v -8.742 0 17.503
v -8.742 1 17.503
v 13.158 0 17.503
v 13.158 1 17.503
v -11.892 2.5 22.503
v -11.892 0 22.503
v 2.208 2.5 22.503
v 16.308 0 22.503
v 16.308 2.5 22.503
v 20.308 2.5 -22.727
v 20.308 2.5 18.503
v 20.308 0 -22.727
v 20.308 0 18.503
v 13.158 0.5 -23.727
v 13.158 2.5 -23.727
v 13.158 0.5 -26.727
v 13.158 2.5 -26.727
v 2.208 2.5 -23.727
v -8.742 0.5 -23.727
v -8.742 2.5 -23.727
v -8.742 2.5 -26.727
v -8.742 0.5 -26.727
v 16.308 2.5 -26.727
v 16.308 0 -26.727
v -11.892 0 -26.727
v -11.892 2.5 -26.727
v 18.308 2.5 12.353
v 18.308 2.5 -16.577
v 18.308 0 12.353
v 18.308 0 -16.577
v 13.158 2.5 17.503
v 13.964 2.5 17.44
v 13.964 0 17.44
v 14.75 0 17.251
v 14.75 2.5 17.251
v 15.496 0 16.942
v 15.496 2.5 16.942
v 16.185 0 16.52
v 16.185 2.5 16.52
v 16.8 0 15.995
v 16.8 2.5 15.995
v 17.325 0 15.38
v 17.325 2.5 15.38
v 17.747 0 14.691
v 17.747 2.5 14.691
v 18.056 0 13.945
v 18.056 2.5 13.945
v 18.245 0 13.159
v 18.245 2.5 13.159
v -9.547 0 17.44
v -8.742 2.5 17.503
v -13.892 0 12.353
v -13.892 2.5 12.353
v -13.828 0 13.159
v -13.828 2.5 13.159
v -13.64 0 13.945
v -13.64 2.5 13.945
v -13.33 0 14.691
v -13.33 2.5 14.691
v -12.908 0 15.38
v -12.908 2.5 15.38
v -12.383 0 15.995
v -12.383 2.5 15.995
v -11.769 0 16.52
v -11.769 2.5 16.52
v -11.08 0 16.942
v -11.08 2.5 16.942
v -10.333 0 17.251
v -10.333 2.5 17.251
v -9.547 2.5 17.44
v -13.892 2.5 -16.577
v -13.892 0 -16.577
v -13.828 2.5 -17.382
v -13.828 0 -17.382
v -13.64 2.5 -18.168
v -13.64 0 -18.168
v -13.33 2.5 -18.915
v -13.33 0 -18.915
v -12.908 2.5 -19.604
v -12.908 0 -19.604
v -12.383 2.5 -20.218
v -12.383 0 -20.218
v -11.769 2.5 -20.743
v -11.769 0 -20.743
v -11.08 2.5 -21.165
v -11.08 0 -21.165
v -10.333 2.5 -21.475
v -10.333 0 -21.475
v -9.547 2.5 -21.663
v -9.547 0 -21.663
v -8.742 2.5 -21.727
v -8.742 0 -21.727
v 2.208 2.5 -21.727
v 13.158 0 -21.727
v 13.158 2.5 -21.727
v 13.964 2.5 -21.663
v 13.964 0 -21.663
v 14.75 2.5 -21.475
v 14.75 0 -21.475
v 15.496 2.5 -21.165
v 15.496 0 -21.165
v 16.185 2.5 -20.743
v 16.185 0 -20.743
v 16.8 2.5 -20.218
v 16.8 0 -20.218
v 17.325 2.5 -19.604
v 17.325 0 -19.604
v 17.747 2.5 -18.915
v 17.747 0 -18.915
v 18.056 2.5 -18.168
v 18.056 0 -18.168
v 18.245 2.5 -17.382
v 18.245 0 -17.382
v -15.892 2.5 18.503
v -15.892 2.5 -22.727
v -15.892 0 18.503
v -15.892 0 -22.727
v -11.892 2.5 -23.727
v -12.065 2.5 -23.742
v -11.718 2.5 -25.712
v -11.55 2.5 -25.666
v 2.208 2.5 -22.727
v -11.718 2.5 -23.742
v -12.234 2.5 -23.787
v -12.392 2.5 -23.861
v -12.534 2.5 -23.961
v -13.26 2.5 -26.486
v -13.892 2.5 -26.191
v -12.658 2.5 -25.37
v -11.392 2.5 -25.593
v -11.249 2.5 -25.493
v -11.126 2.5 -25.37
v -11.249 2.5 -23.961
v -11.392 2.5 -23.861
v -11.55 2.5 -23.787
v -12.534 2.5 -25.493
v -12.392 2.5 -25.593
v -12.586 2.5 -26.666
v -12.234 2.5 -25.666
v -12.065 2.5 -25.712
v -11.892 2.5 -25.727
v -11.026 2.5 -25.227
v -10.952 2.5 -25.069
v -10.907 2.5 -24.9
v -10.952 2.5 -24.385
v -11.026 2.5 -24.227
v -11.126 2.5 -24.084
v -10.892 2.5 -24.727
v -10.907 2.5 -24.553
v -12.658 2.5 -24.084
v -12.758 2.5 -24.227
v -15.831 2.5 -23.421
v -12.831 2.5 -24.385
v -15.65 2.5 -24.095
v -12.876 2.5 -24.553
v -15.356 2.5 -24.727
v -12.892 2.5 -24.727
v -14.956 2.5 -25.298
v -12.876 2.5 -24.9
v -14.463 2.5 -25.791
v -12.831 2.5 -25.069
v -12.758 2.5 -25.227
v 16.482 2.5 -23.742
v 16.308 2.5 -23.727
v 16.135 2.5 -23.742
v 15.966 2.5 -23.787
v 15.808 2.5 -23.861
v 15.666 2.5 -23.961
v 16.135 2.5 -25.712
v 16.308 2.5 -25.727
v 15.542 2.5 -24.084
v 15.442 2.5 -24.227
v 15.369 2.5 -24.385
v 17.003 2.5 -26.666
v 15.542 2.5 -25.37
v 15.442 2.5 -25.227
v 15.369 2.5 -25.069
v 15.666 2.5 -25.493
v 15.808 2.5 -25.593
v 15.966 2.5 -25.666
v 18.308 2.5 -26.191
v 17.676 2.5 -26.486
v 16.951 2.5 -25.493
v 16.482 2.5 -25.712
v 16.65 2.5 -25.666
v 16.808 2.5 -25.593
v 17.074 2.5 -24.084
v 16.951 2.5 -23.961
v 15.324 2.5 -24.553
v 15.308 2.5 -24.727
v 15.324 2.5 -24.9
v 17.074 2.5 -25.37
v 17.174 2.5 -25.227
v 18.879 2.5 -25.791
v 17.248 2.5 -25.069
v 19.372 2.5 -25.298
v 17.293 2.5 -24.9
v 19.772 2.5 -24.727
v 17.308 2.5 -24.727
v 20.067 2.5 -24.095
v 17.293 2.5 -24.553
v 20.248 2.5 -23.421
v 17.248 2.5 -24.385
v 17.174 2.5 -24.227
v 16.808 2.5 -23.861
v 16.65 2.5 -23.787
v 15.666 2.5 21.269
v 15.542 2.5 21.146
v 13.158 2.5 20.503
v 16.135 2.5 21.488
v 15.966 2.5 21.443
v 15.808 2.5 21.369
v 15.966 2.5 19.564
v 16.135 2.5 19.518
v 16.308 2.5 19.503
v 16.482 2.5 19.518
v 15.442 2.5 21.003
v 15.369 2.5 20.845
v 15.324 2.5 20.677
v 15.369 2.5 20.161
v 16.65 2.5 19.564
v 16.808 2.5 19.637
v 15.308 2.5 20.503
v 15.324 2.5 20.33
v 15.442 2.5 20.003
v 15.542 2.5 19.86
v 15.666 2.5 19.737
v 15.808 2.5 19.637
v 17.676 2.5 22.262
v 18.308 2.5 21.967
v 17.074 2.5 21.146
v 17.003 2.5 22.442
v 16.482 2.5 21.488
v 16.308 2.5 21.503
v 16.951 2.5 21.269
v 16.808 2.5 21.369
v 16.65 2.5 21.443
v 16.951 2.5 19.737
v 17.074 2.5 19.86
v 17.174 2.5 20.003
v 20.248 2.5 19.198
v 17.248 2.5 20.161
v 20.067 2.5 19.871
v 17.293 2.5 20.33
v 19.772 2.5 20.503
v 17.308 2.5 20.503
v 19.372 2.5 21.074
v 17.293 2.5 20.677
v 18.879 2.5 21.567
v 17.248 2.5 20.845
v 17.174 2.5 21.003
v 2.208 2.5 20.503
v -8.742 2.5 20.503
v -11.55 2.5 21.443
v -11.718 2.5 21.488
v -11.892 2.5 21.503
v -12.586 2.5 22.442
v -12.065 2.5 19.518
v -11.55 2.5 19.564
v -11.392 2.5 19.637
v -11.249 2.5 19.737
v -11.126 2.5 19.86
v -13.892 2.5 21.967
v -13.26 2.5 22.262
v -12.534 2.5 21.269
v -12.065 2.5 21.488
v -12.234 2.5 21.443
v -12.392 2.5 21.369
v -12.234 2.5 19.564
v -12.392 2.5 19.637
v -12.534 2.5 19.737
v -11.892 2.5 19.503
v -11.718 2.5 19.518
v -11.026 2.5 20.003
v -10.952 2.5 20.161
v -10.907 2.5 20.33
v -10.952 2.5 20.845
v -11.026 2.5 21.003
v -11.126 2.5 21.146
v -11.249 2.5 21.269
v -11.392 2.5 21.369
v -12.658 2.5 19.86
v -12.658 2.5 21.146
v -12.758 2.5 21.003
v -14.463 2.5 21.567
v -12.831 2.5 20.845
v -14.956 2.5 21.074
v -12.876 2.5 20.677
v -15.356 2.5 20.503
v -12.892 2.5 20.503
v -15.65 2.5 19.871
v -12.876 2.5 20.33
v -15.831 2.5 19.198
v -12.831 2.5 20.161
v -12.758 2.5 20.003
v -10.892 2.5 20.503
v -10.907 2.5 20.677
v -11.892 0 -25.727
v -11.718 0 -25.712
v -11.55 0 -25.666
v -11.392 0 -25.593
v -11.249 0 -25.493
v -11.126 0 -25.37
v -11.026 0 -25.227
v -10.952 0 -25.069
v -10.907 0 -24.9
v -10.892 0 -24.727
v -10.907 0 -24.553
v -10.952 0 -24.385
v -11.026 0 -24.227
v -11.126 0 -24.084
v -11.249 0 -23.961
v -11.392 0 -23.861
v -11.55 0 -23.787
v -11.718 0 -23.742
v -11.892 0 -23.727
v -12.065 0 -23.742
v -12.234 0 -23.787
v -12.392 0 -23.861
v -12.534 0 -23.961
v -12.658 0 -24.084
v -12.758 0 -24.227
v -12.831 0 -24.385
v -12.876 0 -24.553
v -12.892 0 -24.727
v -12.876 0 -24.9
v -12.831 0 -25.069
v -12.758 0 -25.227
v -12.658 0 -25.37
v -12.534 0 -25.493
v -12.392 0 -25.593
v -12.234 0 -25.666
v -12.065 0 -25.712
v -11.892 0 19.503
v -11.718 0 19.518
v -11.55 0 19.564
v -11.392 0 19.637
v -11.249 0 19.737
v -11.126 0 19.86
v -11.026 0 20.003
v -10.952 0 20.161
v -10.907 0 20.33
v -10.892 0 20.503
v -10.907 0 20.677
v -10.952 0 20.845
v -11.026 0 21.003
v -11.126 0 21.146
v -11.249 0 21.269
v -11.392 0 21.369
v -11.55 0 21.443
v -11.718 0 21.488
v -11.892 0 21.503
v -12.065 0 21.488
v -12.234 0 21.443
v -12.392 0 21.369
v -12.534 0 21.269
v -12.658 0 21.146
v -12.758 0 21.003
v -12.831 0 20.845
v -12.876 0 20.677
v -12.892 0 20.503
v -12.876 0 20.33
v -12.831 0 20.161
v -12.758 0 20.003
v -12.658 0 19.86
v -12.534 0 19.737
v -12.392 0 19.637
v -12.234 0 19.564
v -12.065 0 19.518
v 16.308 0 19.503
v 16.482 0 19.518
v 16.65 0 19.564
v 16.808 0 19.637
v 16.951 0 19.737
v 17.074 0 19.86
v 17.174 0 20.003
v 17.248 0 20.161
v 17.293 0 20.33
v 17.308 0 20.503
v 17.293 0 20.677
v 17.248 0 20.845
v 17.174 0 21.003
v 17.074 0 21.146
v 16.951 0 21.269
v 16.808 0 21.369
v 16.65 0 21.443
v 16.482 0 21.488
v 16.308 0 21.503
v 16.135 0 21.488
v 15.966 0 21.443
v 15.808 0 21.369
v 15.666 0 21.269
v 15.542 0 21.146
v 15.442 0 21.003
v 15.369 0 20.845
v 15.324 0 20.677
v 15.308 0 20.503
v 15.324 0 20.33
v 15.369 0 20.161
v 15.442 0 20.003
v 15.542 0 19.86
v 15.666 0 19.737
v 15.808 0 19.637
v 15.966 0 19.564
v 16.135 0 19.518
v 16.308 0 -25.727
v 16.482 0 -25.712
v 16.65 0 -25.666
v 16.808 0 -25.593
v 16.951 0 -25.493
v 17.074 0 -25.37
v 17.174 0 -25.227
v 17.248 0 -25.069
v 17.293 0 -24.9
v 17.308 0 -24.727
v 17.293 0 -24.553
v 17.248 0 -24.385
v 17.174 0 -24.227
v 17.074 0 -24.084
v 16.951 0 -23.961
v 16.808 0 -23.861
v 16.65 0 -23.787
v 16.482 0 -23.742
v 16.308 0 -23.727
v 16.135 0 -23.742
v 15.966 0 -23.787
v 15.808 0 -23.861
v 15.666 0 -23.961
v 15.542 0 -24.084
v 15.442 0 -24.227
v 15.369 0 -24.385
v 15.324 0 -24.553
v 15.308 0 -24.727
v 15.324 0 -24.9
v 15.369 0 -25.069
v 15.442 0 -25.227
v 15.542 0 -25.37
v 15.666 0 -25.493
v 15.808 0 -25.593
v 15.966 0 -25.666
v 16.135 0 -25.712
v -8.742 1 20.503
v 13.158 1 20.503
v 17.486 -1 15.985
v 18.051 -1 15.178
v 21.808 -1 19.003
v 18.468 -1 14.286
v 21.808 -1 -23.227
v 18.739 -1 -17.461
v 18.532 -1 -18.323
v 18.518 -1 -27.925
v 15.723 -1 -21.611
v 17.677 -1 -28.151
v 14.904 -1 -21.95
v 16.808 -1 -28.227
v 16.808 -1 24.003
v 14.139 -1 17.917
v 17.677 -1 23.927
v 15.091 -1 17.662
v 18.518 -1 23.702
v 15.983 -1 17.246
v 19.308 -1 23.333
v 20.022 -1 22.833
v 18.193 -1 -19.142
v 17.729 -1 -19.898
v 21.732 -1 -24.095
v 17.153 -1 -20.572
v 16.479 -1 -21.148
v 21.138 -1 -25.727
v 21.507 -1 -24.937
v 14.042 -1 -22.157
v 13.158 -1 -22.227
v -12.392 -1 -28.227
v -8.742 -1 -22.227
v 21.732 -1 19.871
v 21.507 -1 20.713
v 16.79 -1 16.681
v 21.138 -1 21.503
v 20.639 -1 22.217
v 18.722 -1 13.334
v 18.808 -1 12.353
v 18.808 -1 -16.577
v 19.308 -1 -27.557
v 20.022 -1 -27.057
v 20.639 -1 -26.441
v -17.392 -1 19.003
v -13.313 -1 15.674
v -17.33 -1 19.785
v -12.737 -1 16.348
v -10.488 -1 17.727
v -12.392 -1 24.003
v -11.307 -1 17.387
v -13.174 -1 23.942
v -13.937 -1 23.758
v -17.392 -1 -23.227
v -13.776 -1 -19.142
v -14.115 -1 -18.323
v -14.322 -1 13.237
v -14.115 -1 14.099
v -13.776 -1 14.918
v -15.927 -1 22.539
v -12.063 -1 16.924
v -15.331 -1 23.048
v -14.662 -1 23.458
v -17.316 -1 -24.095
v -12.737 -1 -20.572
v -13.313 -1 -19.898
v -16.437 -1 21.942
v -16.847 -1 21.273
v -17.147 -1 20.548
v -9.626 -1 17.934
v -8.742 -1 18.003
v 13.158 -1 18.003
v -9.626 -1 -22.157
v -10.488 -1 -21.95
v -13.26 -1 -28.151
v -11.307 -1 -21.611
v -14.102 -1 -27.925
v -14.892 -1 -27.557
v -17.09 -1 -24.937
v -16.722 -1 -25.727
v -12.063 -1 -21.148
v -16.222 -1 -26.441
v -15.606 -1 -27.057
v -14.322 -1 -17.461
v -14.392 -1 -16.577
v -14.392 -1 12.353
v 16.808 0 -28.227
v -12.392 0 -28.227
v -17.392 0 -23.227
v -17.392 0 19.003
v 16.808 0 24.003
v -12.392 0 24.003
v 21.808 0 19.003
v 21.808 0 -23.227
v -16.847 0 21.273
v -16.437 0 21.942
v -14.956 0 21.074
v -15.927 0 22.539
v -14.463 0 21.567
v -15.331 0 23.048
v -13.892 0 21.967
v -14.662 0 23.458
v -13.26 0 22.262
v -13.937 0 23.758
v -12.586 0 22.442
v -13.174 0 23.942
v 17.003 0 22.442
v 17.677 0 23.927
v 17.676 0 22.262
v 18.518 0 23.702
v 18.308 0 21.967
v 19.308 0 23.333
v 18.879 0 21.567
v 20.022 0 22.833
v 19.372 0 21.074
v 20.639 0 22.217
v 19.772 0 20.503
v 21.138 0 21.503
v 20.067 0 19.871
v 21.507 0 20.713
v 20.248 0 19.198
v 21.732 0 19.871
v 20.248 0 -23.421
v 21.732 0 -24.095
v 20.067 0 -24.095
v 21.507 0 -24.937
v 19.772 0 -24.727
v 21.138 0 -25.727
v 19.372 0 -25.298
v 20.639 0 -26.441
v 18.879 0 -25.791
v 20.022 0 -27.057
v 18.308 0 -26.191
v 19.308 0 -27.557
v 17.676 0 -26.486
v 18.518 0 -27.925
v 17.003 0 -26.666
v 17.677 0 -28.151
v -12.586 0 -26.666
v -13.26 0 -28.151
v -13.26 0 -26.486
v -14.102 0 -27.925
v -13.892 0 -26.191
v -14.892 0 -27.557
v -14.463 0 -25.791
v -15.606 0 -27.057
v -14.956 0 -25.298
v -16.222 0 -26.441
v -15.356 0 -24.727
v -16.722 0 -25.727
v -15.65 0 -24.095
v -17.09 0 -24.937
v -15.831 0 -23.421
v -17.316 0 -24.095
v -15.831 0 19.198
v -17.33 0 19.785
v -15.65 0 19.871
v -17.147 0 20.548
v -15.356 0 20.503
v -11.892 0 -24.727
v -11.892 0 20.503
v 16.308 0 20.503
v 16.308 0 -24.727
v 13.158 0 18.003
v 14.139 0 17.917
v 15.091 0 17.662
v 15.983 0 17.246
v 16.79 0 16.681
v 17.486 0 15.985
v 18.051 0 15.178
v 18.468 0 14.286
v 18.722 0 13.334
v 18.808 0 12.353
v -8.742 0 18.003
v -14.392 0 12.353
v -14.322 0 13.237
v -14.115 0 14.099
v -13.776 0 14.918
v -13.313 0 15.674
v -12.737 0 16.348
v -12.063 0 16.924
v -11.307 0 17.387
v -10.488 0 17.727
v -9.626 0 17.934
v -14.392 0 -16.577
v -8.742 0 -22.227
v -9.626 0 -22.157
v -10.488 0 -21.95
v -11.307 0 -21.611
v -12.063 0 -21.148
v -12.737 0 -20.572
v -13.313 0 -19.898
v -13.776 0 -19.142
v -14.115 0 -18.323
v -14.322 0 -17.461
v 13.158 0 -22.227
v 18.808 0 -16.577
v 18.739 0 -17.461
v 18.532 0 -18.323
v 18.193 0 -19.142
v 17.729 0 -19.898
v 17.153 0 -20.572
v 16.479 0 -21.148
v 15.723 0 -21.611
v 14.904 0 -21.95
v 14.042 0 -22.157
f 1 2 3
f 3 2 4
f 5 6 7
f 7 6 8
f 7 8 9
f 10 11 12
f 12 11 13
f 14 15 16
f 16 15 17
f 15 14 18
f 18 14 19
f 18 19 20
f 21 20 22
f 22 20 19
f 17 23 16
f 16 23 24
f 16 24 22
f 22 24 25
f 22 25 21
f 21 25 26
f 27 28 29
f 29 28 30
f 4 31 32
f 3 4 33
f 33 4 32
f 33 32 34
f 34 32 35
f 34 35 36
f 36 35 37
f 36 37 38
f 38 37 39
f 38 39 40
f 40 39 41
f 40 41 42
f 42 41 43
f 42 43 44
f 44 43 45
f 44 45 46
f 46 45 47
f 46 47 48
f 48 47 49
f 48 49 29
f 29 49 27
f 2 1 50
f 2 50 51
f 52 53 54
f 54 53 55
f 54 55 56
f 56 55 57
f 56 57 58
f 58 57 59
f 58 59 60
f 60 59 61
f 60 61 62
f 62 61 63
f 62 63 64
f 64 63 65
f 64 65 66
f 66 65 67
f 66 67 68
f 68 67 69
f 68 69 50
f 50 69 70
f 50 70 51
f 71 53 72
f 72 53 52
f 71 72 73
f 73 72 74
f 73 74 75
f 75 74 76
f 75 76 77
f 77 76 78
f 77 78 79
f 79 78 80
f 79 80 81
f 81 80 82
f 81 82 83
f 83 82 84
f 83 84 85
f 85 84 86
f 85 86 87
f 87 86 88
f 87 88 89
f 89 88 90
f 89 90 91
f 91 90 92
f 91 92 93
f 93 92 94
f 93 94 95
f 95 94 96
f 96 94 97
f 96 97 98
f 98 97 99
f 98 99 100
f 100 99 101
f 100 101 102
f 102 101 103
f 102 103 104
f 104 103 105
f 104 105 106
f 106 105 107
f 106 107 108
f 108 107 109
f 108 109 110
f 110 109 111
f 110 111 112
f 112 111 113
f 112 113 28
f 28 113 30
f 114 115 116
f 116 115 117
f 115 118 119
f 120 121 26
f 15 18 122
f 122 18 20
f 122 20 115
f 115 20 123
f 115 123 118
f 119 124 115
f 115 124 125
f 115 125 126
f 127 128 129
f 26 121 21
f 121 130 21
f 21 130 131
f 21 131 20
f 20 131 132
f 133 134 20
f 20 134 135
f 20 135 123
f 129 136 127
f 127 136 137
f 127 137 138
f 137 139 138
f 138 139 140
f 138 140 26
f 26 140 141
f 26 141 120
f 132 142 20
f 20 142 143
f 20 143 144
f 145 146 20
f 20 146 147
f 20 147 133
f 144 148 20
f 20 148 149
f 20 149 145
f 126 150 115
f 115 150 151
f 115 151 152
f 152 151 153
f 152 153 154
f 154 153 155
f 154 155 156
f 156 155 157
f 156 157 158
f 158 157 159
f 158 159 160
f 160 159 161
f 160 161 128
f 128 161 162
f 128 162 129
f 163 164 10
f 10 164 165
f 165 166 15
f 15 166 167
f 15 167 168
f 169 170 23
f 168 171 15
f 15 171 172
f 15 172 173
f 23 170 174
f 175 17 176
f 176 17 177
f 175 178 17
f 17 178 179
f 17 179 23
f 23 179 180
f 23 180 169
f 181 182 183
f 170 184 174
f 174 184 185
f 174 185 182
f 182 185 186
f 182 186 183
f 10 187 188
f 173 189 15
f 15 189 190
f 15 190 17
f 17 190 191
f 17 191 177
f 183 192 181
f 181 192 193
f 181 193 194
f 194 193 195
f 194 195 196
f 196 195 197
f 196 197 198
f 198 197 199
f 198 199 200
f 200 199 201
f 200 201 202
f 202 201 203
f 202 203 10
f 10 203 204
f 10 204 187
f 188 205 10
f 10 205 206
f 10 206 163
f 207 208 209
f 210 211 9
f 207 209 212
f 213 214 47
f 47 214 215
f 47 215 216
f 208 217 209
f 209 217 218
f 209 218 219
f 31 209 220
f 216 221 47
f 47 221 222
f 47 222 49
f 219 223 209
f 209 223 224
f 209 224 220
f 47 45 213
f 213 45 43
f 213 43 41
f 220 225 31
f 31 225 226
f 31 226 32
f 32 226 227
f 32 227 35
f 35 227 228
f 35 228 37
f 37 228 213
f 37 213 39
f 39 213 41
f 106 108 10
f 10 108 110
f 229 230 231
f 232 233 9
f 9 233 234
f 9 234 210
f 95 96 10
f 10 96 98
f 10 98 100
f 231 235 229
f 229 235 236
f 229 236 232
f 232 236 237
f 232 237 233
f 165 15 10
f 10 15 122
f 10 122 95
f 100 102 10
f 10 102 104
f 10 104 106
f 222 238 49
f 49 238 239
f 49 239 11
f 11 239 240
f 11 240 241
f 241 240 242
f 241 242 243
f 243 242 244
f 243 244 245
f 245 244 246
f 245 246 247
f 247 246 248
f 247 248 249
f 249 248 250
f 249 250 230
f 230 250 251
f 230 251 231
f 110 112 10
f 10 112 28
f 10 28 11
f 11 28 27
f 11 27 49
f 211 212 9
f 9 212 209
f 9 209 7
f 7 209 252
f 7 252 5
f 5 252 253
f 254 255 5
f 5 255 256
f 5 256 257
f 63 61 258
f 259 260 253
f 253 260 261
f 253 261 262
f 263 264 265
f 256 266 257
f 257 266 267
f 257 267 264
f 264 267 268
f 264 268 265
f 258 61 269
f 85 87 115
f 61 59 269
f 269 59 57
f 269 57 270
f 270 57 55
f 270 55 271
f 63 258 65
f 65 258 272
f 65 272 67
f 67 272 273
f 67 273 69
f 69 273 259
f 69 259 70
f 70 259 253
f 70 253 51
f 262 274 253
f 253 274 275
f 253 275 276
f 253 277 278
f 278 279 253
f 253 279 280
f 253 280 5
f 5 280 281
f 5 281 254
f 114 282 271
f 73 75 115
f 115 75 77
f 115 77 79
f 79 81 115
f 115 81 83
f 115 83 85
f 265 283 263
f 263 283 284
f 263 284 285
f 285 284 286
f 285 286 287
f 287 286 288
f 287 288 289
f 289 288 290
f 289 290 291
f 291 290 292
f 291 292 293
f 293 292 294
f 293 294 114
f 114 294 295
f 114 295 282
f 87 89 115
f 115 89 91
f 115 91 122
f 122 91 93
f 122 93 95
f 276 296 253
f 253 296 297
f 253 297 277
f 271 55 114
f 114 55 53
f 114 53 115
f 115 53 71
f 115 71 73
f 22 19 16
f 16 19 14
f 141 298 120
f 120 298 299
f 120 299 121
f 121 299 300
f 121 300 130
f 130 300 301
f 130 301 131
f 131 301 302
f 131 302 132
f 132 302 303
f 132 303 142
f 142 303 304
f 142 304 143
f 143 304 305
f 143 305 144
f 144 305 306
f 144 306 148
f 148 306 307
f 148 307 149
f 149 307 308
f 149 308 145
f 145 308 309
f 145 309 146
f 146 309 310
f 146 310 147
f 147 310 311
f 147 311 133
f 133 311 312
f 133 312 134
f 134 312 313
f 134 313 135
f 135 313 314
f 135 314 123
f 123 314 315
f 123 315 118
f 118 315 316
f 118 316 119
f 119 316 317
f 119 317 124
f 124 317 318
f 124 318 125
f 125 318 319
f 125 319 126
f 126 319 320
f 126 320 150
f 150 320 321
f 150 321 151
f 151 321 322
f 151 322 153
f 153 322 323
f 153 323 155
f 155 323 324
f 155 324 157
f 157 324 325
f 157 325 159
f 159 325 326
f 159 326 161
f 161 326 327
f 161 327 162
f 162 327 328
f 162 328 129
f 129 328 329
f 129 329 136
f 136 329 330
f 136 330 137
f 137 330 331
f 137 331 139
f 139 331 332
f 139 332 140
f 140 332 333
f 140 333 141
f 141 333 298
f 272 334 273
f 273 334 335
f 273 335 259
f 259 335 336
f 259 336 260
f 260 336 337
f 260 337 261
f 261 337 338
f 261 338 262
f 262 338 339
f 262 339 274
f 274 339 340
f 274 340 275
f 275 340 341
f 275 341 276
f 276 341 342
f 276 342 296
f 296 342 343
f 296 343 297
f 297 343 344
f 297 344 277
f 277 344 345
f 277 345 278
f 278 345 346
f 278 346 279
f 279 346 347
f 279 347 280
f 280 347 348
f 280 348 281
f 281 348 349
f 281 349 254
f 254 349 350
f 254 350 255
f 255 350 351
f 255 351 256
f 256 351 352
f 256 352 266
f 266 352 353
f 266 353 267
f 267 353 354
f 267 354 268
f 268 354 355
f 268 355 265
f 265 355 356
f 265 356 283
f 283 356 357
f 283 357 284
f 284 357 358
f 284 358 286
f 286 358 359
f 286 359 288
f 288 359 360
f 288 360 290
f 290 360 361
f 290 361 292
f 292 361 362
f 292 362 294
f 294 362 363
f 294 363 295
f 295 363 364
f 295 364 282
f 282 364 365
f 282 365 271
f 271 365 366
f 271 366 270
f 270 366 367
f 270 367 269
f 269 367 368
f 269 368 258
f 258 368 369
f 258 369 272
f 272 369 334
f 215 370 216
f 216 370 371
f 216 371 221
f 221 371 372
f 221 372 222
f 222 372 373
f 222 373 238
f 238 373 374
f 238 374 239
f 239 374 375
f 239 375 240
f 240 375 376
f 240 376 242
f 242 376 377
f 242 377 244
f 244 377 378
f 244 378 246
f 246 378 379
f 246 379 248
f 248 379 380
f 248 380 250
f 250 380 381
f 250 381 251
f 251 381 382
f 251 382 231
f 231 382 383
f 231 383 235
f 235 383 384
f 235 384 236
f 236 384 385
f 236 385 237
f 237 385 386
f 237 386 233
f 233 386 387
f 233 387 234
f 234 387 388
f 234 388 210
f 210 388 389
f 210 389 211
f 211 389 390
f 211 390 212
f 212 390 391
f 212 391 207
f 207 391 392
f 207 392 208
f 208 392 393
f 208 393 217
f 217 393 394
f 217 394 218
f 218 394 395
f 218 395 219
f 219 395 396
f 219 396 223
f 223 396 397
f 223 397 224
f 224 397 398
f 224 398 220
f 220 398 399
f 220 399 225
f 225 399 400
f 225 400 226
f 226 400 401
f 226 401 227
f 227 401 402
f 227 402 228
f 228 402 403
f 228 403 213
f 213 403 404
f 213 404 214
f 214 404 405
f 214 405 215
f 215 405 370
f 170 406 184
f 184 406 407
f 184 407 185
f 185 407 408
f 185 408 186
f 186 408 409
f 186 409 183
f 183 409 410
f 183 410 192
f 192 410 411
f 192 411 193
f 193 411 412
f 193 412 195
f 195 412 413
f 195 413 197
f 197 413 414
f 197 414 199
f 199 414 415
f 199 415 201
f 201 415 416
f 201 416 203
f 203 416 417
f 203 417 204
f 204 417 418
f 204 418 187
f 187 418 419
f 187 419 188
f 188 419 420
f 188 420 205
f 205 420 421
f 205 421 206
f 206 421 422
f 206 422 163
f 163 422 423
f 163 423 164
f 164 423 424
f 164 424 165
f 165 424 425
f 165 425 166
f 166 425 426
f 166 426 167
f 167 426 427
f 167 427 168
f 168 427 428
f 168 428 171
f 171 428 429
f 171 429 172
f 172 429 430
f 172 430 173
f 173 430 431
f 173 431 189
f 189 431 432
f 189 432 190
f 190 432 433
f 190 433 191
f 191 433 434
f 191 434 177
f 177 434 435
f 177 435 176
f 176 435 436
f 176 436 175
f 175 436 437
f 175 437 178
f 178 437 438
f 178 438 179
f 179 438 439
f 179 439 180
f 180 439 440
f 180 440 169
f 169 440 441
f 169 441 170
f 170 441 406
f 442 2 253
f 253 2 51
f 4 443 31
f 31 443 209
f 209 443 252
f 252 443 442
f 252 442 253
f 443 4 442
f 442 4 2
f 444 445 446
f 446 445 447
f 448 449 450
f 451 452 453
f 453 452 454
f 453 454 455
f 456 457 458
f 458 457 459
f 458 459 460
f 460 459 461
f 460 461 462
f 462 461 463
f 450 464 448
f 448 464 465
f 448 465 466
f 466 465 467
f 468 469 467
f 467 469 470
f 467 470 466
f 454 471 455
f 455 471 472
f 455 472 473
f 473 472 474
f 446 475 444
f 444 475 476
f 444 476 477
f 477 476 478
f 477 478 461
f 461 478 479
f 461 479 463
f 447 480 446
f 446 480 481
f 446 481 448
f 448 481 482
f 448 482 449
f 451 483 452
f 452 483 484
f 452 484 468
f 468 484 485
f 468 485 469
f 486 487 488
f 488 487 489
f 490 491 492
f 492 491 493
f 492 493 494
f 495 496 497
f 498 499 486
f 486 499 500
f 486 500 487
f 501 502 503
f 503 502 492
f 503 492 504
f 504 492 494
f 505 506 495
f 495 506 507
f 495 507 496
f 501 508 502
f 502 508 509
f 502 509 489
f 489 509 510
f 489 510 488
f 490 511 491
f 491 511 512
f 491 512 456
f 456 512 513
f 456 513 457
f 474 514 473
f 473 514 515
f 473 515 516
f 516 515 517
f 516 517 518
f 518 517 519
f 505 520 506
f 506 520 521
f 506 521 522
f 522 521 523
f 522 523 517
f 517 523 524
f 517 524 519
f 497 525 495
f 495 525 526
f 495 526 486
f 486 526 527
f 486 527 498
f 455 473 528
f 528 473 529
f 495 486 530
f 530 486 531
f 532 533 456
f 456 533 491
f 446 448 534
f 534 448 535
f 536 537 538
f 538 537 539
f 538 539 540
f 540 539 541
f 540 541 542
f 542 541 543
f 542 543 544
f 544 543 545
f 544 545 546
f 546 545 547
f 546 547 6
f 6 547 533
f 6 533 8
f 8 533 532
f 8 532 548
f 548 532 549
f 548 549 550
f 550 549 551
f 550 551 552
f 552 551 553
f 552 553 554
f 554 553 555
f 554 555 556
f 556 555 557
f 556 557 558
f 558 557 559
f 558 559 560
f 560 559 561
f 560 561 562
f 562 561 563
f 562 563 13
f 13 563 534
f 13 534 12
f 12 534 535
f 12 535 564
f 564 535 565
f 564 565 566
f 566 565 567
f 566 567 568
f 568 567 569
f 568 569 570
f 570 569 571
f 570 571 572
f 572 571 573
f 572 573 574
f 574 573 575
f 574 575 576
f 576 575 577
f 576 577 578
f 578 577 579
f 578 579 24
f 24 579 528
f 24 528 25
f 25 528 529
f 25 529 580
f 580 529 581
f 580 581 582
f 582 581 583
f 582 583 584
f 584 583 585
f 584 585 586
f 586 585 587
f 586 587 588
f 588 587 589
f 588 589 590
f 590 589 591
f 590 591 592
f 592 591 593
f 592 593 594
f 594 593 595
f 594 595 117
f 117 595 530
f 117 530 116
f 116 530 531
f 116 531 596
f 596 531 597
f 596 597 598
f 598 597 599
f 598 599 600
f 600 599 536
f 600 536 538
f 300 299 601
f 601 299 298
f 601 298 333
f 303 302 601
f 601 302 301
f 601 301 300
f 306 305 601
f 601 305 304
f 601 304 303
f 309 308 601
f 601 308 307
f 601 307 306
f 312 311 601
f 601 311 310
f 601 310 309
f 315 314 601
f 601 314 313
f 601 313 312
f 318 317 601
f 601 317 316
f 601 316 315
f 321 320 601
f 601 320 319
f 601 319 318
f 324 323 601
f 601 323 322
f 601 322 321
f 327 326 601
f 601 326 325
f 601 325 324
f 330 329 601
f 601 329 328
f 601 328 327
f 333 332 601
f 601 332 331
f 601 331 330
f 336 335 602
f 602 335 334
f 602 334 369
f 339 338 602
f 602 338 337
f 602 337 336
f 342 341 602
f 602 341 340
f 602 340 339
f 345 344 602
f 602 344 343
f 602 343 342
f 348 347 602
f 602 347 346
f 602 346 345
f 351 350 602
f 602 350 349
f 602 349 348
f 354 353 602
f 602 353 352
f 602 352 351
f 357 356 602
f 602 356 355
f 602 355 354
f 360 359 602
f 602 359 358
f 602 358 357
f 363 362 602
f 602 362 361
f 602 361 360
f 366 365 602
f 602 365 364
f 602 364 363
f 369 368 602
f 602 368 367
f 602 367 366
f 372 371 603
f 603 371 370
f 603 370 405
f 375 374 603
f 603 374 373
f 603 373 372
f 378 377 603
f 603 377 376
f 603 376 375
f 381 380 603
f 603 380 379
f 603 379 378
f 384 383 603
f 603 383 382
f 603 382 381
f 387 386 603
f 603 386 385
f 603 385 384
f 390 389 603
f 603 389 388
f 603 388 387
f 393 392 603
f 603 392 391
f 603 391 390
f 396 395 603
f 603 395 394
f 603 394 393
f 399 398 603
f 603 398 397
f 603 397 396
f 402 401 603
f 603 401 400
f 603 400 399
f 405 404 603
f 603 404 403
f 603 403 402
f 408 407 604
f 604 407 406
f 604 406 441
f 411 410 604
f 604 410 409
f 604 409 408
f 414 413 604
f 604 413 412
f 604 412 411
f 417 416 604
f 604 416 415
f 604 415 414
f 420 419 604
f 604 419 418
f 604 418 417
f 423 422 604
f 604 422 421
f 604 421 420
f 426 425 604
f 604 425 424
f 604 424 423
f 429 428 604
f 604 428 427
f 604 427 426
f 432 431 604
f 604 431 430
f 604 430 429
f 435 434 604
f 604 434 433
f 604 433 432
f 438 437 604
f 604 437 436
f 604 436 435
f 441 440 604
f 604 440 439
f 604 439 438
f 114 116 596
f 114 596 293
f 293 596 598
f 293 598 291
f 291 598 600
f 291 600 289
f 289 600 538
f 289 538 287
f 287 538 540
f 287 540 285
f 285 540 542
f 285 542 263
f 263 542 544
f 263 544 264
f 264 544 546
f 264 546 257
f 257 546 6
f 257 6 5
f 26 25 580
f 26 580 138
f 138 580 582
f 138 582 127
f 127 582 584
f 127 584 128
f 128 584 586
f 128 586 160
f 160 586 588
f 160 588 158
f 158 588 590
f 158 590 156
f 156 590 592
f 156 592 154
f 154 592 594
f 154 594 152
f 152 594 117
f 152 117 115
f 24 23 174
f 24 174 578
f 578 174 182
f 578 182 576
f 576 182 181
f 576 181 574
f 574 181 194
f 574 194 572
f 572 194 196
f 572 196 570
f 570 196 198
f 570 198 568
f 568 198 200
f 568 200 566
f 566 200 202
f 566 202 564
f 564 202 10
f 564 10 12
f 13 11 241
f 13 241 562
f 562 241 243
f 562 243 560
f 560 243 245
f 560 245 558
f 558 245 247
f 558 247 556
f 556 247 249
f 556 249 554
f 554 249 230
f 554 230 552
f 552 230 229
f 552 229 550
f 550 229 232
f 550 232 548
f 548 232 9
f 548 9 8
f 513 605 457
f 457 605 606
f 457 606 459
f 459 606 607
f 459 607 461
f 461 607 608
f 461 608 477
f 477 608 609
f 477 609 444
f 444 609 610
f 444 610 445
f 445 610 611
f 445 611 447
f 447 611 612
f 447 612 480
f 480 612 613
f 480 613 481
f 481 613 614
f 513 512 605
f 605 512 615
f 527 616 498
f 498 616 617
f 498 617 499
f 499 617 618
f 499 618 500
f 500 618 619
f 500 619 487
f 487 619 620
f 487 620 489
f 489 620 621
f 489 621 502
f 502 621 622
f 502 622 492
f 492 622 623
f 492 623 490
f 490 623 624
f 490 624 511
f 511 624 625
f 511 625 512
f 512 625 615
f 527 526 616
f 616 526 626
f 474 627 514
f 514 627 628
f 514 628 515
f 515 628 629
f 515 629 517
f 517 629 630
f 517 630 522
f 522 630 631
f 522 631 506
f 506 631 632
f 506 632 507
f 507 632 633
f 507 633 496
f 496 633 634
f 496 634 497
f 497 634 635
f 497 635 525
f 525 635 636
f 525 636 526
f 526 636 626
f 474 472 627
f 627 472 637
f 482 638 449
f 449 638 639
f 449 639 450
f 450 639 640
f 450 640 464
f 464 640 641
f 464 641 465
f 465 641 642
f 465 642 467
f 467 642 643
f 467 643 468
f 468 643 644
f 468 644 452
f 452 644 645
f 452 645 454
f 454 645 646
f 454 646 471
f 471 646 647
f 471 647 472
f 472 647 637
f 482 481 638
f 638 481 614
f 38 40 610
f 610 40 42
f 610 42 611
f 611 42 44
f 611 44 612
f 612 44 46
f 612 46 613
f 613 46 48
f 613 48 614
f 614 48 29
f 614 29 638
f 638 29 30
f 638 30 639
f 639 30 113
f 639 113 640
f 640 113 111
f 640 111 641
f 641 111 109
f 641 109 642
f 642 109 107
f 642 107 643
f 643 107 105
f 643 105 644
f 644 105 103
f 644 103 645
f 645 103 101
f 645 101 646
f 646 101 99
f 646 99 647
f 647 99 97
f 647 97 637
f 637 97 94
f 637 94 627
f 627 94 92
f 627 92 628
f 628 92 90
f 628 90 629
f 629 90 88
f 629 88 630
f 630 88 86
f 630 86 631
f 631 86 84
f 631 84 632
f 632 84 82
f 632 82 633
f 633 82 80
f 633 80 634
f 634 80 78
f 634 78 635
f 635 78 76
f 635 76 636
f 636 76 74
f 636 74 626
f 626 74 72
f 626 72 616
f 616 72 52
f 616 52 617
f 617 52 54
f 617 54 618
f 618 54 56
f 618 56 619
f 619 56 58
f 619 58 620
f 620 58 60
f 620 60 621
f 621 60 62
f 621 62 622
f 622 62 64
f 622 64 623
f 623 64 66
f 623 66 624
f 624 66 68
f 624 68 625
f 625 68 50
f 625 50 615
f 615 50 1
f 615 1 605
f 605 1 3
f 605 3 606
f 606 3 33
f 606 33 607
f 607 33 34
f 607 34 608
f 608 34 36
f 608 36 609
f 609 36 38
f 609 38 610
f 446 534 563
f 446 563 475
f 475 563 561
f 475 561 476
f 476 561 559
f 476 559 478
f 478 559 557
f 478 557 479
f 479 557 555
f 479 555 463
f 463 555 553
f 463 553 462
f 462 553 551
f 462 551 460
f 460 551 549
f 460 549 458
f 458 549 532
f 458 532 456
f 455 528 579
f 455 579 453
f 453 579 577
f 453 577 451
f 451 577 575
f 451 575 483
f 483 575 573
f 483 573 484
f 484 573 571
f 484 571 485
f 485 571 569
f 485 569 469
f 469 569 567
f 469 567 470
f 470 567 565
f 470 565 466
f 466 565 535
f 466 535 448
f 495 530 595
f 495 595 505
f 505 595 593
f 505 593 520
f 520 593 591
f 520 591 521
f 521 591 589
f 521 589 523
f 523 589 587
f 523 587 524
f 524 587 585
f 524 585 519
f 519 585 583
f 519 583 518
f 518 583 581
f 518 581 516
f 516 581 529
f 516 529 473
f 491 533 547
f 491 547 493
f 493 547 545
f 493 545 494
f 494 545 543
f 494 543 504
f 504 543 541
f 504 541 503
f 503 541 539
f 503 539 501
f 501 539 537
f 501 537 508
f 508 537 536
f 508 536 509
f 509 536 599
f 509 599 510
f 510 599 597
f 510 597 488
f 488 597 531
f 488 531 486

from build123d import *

# Parameters (mm, degrees)
EXTRUDE_1_DEPTH       = 2.5
SKETCH_1_3_W          = 21.9
SKETCH_1_3_H          = 3
EXTRUDE_2_DEPTH       = 0.5
SKETCH_2_R            = 1
CUT_EXTRUDE_1_DEPTH   = 34.660057049
SKETCH_3_W            = 21.9
SKETCH_3_H            = 3
CUT_EXTRUDE_2_DEPTH   = 1.5
SKETCH_4_W            = 39.2
SKETCH_4_H            = 52.23
EXTRUDE_3_DEPTH       = 1
CUT_EXTRUDE_START     = -1
CUT_EXTRUDE_3_DEPTH   = 1
FILLET_1_R            = 4
CUT_EXTRUDE_1_2_DEPTH = 1
FILLET_2_R            = 5


with BuildPart() as part:
    # 草图1 → 凸台-拉伸1 (new body)
    with BuildSketch(Plane(origin=(0, 0, 0), x_dir=(1, 0, 0), z_dir=(0, 1, 0))):
        Polygon((20.308319986, -22.503204833), (20.308319986, 26.726795167), (13.158319986, 26.726795167), (13.158319986, 23.726795167), (-8.741680014, 23.726795167), (-8.741680014, 26.726795167), (-15.891680014, 26.726795167), (-15.891680014, -22.503204833), align=None)
        with BuildLine():
            ThreePointArc((18.308319986, -12.353204833), (16.799919909, -15.994804756), (13.158319986, -17.503204833))
            Line((13.158319986, -17.503204833), (-8.741680014, -17.503204833))
            ThreePointArc((-8.741680014, -17.503204833), (-12.383279937, -15.994804756), (-13.891680014, -12.353204833))
            Line((-13.891680014, -12.353204833), (-13.891680014, 16.576795167))
            ThreePointArc((-13.891680014, 16.576795167), (-12.383279937, 20.21839509), (-8.741680014, 21.726795167))
            Line((-8.741680014, 21.726795167), (13.158319986, 21.726795167))
            ThreePointArc((13.158319986, 21.726795167), (16.799919909, 20.21839509), (18.308319986, 16.576795167))
            Line((18.308319986, 16.576795167), (18.308319986, -12.353204833))
        make_face(mode=Mode.SUBTRACT)
    extrude(amount=EXTRUDE_1_DEPTH)

    # 草图1<3> → 凸台-拉伸2 (add)
    with BuildSketch(Plane(origin=(0, 0, 0), x_dir=(1, 0, 0), z_dir=(0, 1, 0))):
        with Locations((2.208319986, 25.226795167)):
            Rectangle(SKETCH_1_3_W, SKETCH_1_3_H)
    extrude(amount=EXTRUDE_2_DEPTH)

    # 草图2 → Cut-Extrude 1 (cut, through all)
    with BuildSketch(Plane.XZ):
        with Locations((-11.891680014, -24.726795167)):
            Circle(SKETCH_2_R)
        with Locations((-11.891680014, 20.503204833)):
            Circle(SKETCH_2_R)
        with Locations((16.308319986, 20.503204833)):
            Circle(SKETCH_2_R)
        with Locations((16.308319986, -24.726795167)):
            Circle(SKETCH_2_R)
    extrude(amount=-CUT_EXTRUDE_1_DEPTH, mode=Mode.SUBTRACT)

    # 草图3 → 切除-拉伸2 (cut)
    with BuildSketch(Plane(origin=(0, 2.5, 0), x_dir=(1, 0, 0), z_dir=(0, 1, 0))):
        with Locations((2.208319986, -19.003204833)):
            Rectangle(SKETCH_3_W, SKETCH_3_H)
    extrude(amount=-CUT_EXTRUDE_2_DEPTH, mode=Mode.SUBTRACT)

    # 草图4 → 凸台-拉伸3 (add)
    with BuildSketch(Plane.XZ):
        with Locations((2.208319986, -2.111795167)):
            Rectangle(SKETCH_4_W, SKETCH_4_H)
    extrude(amount=EXTRUDE_3_DEPTH)

    # 草图5 → 切除-拉伸3 (cut)
    with BuildSketch(Plane(origin=(0, 0, 0), x_dir=(1, 0, 0), z_dir=(0, 1, 0)).offset(CUT_EXTRUDE_START)):
        with BuildLine():
            Line((18.308319986, -12.353204833), (18.308319986, 16.576795167))
            ThreePointArc((18.308319986, 16.576795167), (16.799919909, 20.21839509), (13.158319986, 21.726795167))
            Line((13.158319986, 21.726795167), (-8.741680014, 21.726795167))
            ThreePointArc((-8.741680014, 21.726795167), (-12.383279937, 20.21839509), (-13.891680014, 16.576795167))
            Line((-13.891680014, 16.576795167), (-13.891680014, -12.353204833))
            ThreePointArc((-13.891680014, -12.353204833), (-12.383279937, -15.994804756), (-8.741680014, -17.503204833))
            Line((-8.741680014, -17.503204833), (13.158319986, -17.503204833))
            ThreePointArc((13.158319986, -17.503204833), (16.799919909, -15.994804756), (18.308319986, -12.353204833))
        make_face()
    extrude(amount=CUT_EXTRUDE_3_DEPTH, mode=Mode.SUBTRACT)

    # 圆角1
    fillet_1_edges = [part.edges().sort_by_distance(p)[0] for p in [
        (-15.891680014, 1.25, 22.503204833),
        (-15.891680014, 1.25, -26.726795167),
        (20.308319986, 1.25, -26.726795167),
        (20.308319986, 1.25, 22.503204833),
    ]]
    fillet(fillet_1_edges, radius=FILLET_1_R)

    # 草图5<2> → Cut-Extrude 1 2 (cut)
    with BuildSketch(Plane(origin=(0, 0, 0), x_dir=(1, 0, 0), z_dir=(0, 1, 0)).offset(CUT_EXTRUDE_START)):
        with BuildLine():
            Line((-8.741680014, -18.003204833), (13.158319986, -18.003204833))
            ThreePointArc((13.158319986, -18.003204833), (17.153473299, -16.348358147), (18.808319986, -12.353204833))
            Line((18.808319986, -12.353204833), (18.808319986, 16.576795167))
            ThreePointArc((18.808319986, 16.576795167), (17.153473299, 20.571948481), (13.158319986, 22.226795167))
            Line((13.158319986, 22.226795167), (-8.741680014, 22.226795167))
            ThreePointArc((-8.741680014, 22.226795167), (-12.736833328, 20.571948481), (-14.391680014, 16.576795167))
            Line((-14.391680014, 16.576795167), (-14.391680014, -12.353204833))
            ThreePointArc((-14.391680014, -12.353204833), (-12.736833328, -16.348358147), (-8.741680014, -18.003204833))
        make_face()
        with BuildLine():
            Line((-8.741680014, -17.503204833), (13.158319986, -17.503204833))
            ThreePointArc((13.158319986, -17.503204833), (16.799919909, -15.994804756), (18.308319986, -12.353204833))
            Line((18.308319986, -12.353204833), (18.308319986, 16.576795167))
            ThreePointArc((18.308319986, 16.576795167), (16.799919909, 20.21839509), (13.158319986, 21.726795167))
            Line((13.158319986, 21.726795167), (-8.741680014, 21.726795167))
            ThreePointArc((-8.741680014, 21.726795167), (-12.383279937, 20.21839509), (-13.891680014, 16.576795167))
            Line((-13.891680014, 16.576795167), (-13.891680014, -12.353204833))
            ThreePointArc((-13.891680014, -12.353204833), (-12.383279937, -15.994804756), (-8.741680014, -17.503204833))
        make_face(mode=Mode.SUBTRACT)
    extrude(amount=CUT_EXTRUDE_1_2_DEPTH, mode=Mode.SUBTRACT)

    # 圆角2
    fillet_2_edges = [part.edges().sort_by_distance(p)[0] for p in [
        (21.808319986, -0.5, 24.003204833),
        (21.808319986, -0.5, -28.226795167),
        (-17.391680014, -0.5, -28.226795167),
        (-17.391680014, -0.5, 24.003204833),
    ]]
    fillet(fillet_2_edges, radius=FILLET_2_R)


solid = part.part
